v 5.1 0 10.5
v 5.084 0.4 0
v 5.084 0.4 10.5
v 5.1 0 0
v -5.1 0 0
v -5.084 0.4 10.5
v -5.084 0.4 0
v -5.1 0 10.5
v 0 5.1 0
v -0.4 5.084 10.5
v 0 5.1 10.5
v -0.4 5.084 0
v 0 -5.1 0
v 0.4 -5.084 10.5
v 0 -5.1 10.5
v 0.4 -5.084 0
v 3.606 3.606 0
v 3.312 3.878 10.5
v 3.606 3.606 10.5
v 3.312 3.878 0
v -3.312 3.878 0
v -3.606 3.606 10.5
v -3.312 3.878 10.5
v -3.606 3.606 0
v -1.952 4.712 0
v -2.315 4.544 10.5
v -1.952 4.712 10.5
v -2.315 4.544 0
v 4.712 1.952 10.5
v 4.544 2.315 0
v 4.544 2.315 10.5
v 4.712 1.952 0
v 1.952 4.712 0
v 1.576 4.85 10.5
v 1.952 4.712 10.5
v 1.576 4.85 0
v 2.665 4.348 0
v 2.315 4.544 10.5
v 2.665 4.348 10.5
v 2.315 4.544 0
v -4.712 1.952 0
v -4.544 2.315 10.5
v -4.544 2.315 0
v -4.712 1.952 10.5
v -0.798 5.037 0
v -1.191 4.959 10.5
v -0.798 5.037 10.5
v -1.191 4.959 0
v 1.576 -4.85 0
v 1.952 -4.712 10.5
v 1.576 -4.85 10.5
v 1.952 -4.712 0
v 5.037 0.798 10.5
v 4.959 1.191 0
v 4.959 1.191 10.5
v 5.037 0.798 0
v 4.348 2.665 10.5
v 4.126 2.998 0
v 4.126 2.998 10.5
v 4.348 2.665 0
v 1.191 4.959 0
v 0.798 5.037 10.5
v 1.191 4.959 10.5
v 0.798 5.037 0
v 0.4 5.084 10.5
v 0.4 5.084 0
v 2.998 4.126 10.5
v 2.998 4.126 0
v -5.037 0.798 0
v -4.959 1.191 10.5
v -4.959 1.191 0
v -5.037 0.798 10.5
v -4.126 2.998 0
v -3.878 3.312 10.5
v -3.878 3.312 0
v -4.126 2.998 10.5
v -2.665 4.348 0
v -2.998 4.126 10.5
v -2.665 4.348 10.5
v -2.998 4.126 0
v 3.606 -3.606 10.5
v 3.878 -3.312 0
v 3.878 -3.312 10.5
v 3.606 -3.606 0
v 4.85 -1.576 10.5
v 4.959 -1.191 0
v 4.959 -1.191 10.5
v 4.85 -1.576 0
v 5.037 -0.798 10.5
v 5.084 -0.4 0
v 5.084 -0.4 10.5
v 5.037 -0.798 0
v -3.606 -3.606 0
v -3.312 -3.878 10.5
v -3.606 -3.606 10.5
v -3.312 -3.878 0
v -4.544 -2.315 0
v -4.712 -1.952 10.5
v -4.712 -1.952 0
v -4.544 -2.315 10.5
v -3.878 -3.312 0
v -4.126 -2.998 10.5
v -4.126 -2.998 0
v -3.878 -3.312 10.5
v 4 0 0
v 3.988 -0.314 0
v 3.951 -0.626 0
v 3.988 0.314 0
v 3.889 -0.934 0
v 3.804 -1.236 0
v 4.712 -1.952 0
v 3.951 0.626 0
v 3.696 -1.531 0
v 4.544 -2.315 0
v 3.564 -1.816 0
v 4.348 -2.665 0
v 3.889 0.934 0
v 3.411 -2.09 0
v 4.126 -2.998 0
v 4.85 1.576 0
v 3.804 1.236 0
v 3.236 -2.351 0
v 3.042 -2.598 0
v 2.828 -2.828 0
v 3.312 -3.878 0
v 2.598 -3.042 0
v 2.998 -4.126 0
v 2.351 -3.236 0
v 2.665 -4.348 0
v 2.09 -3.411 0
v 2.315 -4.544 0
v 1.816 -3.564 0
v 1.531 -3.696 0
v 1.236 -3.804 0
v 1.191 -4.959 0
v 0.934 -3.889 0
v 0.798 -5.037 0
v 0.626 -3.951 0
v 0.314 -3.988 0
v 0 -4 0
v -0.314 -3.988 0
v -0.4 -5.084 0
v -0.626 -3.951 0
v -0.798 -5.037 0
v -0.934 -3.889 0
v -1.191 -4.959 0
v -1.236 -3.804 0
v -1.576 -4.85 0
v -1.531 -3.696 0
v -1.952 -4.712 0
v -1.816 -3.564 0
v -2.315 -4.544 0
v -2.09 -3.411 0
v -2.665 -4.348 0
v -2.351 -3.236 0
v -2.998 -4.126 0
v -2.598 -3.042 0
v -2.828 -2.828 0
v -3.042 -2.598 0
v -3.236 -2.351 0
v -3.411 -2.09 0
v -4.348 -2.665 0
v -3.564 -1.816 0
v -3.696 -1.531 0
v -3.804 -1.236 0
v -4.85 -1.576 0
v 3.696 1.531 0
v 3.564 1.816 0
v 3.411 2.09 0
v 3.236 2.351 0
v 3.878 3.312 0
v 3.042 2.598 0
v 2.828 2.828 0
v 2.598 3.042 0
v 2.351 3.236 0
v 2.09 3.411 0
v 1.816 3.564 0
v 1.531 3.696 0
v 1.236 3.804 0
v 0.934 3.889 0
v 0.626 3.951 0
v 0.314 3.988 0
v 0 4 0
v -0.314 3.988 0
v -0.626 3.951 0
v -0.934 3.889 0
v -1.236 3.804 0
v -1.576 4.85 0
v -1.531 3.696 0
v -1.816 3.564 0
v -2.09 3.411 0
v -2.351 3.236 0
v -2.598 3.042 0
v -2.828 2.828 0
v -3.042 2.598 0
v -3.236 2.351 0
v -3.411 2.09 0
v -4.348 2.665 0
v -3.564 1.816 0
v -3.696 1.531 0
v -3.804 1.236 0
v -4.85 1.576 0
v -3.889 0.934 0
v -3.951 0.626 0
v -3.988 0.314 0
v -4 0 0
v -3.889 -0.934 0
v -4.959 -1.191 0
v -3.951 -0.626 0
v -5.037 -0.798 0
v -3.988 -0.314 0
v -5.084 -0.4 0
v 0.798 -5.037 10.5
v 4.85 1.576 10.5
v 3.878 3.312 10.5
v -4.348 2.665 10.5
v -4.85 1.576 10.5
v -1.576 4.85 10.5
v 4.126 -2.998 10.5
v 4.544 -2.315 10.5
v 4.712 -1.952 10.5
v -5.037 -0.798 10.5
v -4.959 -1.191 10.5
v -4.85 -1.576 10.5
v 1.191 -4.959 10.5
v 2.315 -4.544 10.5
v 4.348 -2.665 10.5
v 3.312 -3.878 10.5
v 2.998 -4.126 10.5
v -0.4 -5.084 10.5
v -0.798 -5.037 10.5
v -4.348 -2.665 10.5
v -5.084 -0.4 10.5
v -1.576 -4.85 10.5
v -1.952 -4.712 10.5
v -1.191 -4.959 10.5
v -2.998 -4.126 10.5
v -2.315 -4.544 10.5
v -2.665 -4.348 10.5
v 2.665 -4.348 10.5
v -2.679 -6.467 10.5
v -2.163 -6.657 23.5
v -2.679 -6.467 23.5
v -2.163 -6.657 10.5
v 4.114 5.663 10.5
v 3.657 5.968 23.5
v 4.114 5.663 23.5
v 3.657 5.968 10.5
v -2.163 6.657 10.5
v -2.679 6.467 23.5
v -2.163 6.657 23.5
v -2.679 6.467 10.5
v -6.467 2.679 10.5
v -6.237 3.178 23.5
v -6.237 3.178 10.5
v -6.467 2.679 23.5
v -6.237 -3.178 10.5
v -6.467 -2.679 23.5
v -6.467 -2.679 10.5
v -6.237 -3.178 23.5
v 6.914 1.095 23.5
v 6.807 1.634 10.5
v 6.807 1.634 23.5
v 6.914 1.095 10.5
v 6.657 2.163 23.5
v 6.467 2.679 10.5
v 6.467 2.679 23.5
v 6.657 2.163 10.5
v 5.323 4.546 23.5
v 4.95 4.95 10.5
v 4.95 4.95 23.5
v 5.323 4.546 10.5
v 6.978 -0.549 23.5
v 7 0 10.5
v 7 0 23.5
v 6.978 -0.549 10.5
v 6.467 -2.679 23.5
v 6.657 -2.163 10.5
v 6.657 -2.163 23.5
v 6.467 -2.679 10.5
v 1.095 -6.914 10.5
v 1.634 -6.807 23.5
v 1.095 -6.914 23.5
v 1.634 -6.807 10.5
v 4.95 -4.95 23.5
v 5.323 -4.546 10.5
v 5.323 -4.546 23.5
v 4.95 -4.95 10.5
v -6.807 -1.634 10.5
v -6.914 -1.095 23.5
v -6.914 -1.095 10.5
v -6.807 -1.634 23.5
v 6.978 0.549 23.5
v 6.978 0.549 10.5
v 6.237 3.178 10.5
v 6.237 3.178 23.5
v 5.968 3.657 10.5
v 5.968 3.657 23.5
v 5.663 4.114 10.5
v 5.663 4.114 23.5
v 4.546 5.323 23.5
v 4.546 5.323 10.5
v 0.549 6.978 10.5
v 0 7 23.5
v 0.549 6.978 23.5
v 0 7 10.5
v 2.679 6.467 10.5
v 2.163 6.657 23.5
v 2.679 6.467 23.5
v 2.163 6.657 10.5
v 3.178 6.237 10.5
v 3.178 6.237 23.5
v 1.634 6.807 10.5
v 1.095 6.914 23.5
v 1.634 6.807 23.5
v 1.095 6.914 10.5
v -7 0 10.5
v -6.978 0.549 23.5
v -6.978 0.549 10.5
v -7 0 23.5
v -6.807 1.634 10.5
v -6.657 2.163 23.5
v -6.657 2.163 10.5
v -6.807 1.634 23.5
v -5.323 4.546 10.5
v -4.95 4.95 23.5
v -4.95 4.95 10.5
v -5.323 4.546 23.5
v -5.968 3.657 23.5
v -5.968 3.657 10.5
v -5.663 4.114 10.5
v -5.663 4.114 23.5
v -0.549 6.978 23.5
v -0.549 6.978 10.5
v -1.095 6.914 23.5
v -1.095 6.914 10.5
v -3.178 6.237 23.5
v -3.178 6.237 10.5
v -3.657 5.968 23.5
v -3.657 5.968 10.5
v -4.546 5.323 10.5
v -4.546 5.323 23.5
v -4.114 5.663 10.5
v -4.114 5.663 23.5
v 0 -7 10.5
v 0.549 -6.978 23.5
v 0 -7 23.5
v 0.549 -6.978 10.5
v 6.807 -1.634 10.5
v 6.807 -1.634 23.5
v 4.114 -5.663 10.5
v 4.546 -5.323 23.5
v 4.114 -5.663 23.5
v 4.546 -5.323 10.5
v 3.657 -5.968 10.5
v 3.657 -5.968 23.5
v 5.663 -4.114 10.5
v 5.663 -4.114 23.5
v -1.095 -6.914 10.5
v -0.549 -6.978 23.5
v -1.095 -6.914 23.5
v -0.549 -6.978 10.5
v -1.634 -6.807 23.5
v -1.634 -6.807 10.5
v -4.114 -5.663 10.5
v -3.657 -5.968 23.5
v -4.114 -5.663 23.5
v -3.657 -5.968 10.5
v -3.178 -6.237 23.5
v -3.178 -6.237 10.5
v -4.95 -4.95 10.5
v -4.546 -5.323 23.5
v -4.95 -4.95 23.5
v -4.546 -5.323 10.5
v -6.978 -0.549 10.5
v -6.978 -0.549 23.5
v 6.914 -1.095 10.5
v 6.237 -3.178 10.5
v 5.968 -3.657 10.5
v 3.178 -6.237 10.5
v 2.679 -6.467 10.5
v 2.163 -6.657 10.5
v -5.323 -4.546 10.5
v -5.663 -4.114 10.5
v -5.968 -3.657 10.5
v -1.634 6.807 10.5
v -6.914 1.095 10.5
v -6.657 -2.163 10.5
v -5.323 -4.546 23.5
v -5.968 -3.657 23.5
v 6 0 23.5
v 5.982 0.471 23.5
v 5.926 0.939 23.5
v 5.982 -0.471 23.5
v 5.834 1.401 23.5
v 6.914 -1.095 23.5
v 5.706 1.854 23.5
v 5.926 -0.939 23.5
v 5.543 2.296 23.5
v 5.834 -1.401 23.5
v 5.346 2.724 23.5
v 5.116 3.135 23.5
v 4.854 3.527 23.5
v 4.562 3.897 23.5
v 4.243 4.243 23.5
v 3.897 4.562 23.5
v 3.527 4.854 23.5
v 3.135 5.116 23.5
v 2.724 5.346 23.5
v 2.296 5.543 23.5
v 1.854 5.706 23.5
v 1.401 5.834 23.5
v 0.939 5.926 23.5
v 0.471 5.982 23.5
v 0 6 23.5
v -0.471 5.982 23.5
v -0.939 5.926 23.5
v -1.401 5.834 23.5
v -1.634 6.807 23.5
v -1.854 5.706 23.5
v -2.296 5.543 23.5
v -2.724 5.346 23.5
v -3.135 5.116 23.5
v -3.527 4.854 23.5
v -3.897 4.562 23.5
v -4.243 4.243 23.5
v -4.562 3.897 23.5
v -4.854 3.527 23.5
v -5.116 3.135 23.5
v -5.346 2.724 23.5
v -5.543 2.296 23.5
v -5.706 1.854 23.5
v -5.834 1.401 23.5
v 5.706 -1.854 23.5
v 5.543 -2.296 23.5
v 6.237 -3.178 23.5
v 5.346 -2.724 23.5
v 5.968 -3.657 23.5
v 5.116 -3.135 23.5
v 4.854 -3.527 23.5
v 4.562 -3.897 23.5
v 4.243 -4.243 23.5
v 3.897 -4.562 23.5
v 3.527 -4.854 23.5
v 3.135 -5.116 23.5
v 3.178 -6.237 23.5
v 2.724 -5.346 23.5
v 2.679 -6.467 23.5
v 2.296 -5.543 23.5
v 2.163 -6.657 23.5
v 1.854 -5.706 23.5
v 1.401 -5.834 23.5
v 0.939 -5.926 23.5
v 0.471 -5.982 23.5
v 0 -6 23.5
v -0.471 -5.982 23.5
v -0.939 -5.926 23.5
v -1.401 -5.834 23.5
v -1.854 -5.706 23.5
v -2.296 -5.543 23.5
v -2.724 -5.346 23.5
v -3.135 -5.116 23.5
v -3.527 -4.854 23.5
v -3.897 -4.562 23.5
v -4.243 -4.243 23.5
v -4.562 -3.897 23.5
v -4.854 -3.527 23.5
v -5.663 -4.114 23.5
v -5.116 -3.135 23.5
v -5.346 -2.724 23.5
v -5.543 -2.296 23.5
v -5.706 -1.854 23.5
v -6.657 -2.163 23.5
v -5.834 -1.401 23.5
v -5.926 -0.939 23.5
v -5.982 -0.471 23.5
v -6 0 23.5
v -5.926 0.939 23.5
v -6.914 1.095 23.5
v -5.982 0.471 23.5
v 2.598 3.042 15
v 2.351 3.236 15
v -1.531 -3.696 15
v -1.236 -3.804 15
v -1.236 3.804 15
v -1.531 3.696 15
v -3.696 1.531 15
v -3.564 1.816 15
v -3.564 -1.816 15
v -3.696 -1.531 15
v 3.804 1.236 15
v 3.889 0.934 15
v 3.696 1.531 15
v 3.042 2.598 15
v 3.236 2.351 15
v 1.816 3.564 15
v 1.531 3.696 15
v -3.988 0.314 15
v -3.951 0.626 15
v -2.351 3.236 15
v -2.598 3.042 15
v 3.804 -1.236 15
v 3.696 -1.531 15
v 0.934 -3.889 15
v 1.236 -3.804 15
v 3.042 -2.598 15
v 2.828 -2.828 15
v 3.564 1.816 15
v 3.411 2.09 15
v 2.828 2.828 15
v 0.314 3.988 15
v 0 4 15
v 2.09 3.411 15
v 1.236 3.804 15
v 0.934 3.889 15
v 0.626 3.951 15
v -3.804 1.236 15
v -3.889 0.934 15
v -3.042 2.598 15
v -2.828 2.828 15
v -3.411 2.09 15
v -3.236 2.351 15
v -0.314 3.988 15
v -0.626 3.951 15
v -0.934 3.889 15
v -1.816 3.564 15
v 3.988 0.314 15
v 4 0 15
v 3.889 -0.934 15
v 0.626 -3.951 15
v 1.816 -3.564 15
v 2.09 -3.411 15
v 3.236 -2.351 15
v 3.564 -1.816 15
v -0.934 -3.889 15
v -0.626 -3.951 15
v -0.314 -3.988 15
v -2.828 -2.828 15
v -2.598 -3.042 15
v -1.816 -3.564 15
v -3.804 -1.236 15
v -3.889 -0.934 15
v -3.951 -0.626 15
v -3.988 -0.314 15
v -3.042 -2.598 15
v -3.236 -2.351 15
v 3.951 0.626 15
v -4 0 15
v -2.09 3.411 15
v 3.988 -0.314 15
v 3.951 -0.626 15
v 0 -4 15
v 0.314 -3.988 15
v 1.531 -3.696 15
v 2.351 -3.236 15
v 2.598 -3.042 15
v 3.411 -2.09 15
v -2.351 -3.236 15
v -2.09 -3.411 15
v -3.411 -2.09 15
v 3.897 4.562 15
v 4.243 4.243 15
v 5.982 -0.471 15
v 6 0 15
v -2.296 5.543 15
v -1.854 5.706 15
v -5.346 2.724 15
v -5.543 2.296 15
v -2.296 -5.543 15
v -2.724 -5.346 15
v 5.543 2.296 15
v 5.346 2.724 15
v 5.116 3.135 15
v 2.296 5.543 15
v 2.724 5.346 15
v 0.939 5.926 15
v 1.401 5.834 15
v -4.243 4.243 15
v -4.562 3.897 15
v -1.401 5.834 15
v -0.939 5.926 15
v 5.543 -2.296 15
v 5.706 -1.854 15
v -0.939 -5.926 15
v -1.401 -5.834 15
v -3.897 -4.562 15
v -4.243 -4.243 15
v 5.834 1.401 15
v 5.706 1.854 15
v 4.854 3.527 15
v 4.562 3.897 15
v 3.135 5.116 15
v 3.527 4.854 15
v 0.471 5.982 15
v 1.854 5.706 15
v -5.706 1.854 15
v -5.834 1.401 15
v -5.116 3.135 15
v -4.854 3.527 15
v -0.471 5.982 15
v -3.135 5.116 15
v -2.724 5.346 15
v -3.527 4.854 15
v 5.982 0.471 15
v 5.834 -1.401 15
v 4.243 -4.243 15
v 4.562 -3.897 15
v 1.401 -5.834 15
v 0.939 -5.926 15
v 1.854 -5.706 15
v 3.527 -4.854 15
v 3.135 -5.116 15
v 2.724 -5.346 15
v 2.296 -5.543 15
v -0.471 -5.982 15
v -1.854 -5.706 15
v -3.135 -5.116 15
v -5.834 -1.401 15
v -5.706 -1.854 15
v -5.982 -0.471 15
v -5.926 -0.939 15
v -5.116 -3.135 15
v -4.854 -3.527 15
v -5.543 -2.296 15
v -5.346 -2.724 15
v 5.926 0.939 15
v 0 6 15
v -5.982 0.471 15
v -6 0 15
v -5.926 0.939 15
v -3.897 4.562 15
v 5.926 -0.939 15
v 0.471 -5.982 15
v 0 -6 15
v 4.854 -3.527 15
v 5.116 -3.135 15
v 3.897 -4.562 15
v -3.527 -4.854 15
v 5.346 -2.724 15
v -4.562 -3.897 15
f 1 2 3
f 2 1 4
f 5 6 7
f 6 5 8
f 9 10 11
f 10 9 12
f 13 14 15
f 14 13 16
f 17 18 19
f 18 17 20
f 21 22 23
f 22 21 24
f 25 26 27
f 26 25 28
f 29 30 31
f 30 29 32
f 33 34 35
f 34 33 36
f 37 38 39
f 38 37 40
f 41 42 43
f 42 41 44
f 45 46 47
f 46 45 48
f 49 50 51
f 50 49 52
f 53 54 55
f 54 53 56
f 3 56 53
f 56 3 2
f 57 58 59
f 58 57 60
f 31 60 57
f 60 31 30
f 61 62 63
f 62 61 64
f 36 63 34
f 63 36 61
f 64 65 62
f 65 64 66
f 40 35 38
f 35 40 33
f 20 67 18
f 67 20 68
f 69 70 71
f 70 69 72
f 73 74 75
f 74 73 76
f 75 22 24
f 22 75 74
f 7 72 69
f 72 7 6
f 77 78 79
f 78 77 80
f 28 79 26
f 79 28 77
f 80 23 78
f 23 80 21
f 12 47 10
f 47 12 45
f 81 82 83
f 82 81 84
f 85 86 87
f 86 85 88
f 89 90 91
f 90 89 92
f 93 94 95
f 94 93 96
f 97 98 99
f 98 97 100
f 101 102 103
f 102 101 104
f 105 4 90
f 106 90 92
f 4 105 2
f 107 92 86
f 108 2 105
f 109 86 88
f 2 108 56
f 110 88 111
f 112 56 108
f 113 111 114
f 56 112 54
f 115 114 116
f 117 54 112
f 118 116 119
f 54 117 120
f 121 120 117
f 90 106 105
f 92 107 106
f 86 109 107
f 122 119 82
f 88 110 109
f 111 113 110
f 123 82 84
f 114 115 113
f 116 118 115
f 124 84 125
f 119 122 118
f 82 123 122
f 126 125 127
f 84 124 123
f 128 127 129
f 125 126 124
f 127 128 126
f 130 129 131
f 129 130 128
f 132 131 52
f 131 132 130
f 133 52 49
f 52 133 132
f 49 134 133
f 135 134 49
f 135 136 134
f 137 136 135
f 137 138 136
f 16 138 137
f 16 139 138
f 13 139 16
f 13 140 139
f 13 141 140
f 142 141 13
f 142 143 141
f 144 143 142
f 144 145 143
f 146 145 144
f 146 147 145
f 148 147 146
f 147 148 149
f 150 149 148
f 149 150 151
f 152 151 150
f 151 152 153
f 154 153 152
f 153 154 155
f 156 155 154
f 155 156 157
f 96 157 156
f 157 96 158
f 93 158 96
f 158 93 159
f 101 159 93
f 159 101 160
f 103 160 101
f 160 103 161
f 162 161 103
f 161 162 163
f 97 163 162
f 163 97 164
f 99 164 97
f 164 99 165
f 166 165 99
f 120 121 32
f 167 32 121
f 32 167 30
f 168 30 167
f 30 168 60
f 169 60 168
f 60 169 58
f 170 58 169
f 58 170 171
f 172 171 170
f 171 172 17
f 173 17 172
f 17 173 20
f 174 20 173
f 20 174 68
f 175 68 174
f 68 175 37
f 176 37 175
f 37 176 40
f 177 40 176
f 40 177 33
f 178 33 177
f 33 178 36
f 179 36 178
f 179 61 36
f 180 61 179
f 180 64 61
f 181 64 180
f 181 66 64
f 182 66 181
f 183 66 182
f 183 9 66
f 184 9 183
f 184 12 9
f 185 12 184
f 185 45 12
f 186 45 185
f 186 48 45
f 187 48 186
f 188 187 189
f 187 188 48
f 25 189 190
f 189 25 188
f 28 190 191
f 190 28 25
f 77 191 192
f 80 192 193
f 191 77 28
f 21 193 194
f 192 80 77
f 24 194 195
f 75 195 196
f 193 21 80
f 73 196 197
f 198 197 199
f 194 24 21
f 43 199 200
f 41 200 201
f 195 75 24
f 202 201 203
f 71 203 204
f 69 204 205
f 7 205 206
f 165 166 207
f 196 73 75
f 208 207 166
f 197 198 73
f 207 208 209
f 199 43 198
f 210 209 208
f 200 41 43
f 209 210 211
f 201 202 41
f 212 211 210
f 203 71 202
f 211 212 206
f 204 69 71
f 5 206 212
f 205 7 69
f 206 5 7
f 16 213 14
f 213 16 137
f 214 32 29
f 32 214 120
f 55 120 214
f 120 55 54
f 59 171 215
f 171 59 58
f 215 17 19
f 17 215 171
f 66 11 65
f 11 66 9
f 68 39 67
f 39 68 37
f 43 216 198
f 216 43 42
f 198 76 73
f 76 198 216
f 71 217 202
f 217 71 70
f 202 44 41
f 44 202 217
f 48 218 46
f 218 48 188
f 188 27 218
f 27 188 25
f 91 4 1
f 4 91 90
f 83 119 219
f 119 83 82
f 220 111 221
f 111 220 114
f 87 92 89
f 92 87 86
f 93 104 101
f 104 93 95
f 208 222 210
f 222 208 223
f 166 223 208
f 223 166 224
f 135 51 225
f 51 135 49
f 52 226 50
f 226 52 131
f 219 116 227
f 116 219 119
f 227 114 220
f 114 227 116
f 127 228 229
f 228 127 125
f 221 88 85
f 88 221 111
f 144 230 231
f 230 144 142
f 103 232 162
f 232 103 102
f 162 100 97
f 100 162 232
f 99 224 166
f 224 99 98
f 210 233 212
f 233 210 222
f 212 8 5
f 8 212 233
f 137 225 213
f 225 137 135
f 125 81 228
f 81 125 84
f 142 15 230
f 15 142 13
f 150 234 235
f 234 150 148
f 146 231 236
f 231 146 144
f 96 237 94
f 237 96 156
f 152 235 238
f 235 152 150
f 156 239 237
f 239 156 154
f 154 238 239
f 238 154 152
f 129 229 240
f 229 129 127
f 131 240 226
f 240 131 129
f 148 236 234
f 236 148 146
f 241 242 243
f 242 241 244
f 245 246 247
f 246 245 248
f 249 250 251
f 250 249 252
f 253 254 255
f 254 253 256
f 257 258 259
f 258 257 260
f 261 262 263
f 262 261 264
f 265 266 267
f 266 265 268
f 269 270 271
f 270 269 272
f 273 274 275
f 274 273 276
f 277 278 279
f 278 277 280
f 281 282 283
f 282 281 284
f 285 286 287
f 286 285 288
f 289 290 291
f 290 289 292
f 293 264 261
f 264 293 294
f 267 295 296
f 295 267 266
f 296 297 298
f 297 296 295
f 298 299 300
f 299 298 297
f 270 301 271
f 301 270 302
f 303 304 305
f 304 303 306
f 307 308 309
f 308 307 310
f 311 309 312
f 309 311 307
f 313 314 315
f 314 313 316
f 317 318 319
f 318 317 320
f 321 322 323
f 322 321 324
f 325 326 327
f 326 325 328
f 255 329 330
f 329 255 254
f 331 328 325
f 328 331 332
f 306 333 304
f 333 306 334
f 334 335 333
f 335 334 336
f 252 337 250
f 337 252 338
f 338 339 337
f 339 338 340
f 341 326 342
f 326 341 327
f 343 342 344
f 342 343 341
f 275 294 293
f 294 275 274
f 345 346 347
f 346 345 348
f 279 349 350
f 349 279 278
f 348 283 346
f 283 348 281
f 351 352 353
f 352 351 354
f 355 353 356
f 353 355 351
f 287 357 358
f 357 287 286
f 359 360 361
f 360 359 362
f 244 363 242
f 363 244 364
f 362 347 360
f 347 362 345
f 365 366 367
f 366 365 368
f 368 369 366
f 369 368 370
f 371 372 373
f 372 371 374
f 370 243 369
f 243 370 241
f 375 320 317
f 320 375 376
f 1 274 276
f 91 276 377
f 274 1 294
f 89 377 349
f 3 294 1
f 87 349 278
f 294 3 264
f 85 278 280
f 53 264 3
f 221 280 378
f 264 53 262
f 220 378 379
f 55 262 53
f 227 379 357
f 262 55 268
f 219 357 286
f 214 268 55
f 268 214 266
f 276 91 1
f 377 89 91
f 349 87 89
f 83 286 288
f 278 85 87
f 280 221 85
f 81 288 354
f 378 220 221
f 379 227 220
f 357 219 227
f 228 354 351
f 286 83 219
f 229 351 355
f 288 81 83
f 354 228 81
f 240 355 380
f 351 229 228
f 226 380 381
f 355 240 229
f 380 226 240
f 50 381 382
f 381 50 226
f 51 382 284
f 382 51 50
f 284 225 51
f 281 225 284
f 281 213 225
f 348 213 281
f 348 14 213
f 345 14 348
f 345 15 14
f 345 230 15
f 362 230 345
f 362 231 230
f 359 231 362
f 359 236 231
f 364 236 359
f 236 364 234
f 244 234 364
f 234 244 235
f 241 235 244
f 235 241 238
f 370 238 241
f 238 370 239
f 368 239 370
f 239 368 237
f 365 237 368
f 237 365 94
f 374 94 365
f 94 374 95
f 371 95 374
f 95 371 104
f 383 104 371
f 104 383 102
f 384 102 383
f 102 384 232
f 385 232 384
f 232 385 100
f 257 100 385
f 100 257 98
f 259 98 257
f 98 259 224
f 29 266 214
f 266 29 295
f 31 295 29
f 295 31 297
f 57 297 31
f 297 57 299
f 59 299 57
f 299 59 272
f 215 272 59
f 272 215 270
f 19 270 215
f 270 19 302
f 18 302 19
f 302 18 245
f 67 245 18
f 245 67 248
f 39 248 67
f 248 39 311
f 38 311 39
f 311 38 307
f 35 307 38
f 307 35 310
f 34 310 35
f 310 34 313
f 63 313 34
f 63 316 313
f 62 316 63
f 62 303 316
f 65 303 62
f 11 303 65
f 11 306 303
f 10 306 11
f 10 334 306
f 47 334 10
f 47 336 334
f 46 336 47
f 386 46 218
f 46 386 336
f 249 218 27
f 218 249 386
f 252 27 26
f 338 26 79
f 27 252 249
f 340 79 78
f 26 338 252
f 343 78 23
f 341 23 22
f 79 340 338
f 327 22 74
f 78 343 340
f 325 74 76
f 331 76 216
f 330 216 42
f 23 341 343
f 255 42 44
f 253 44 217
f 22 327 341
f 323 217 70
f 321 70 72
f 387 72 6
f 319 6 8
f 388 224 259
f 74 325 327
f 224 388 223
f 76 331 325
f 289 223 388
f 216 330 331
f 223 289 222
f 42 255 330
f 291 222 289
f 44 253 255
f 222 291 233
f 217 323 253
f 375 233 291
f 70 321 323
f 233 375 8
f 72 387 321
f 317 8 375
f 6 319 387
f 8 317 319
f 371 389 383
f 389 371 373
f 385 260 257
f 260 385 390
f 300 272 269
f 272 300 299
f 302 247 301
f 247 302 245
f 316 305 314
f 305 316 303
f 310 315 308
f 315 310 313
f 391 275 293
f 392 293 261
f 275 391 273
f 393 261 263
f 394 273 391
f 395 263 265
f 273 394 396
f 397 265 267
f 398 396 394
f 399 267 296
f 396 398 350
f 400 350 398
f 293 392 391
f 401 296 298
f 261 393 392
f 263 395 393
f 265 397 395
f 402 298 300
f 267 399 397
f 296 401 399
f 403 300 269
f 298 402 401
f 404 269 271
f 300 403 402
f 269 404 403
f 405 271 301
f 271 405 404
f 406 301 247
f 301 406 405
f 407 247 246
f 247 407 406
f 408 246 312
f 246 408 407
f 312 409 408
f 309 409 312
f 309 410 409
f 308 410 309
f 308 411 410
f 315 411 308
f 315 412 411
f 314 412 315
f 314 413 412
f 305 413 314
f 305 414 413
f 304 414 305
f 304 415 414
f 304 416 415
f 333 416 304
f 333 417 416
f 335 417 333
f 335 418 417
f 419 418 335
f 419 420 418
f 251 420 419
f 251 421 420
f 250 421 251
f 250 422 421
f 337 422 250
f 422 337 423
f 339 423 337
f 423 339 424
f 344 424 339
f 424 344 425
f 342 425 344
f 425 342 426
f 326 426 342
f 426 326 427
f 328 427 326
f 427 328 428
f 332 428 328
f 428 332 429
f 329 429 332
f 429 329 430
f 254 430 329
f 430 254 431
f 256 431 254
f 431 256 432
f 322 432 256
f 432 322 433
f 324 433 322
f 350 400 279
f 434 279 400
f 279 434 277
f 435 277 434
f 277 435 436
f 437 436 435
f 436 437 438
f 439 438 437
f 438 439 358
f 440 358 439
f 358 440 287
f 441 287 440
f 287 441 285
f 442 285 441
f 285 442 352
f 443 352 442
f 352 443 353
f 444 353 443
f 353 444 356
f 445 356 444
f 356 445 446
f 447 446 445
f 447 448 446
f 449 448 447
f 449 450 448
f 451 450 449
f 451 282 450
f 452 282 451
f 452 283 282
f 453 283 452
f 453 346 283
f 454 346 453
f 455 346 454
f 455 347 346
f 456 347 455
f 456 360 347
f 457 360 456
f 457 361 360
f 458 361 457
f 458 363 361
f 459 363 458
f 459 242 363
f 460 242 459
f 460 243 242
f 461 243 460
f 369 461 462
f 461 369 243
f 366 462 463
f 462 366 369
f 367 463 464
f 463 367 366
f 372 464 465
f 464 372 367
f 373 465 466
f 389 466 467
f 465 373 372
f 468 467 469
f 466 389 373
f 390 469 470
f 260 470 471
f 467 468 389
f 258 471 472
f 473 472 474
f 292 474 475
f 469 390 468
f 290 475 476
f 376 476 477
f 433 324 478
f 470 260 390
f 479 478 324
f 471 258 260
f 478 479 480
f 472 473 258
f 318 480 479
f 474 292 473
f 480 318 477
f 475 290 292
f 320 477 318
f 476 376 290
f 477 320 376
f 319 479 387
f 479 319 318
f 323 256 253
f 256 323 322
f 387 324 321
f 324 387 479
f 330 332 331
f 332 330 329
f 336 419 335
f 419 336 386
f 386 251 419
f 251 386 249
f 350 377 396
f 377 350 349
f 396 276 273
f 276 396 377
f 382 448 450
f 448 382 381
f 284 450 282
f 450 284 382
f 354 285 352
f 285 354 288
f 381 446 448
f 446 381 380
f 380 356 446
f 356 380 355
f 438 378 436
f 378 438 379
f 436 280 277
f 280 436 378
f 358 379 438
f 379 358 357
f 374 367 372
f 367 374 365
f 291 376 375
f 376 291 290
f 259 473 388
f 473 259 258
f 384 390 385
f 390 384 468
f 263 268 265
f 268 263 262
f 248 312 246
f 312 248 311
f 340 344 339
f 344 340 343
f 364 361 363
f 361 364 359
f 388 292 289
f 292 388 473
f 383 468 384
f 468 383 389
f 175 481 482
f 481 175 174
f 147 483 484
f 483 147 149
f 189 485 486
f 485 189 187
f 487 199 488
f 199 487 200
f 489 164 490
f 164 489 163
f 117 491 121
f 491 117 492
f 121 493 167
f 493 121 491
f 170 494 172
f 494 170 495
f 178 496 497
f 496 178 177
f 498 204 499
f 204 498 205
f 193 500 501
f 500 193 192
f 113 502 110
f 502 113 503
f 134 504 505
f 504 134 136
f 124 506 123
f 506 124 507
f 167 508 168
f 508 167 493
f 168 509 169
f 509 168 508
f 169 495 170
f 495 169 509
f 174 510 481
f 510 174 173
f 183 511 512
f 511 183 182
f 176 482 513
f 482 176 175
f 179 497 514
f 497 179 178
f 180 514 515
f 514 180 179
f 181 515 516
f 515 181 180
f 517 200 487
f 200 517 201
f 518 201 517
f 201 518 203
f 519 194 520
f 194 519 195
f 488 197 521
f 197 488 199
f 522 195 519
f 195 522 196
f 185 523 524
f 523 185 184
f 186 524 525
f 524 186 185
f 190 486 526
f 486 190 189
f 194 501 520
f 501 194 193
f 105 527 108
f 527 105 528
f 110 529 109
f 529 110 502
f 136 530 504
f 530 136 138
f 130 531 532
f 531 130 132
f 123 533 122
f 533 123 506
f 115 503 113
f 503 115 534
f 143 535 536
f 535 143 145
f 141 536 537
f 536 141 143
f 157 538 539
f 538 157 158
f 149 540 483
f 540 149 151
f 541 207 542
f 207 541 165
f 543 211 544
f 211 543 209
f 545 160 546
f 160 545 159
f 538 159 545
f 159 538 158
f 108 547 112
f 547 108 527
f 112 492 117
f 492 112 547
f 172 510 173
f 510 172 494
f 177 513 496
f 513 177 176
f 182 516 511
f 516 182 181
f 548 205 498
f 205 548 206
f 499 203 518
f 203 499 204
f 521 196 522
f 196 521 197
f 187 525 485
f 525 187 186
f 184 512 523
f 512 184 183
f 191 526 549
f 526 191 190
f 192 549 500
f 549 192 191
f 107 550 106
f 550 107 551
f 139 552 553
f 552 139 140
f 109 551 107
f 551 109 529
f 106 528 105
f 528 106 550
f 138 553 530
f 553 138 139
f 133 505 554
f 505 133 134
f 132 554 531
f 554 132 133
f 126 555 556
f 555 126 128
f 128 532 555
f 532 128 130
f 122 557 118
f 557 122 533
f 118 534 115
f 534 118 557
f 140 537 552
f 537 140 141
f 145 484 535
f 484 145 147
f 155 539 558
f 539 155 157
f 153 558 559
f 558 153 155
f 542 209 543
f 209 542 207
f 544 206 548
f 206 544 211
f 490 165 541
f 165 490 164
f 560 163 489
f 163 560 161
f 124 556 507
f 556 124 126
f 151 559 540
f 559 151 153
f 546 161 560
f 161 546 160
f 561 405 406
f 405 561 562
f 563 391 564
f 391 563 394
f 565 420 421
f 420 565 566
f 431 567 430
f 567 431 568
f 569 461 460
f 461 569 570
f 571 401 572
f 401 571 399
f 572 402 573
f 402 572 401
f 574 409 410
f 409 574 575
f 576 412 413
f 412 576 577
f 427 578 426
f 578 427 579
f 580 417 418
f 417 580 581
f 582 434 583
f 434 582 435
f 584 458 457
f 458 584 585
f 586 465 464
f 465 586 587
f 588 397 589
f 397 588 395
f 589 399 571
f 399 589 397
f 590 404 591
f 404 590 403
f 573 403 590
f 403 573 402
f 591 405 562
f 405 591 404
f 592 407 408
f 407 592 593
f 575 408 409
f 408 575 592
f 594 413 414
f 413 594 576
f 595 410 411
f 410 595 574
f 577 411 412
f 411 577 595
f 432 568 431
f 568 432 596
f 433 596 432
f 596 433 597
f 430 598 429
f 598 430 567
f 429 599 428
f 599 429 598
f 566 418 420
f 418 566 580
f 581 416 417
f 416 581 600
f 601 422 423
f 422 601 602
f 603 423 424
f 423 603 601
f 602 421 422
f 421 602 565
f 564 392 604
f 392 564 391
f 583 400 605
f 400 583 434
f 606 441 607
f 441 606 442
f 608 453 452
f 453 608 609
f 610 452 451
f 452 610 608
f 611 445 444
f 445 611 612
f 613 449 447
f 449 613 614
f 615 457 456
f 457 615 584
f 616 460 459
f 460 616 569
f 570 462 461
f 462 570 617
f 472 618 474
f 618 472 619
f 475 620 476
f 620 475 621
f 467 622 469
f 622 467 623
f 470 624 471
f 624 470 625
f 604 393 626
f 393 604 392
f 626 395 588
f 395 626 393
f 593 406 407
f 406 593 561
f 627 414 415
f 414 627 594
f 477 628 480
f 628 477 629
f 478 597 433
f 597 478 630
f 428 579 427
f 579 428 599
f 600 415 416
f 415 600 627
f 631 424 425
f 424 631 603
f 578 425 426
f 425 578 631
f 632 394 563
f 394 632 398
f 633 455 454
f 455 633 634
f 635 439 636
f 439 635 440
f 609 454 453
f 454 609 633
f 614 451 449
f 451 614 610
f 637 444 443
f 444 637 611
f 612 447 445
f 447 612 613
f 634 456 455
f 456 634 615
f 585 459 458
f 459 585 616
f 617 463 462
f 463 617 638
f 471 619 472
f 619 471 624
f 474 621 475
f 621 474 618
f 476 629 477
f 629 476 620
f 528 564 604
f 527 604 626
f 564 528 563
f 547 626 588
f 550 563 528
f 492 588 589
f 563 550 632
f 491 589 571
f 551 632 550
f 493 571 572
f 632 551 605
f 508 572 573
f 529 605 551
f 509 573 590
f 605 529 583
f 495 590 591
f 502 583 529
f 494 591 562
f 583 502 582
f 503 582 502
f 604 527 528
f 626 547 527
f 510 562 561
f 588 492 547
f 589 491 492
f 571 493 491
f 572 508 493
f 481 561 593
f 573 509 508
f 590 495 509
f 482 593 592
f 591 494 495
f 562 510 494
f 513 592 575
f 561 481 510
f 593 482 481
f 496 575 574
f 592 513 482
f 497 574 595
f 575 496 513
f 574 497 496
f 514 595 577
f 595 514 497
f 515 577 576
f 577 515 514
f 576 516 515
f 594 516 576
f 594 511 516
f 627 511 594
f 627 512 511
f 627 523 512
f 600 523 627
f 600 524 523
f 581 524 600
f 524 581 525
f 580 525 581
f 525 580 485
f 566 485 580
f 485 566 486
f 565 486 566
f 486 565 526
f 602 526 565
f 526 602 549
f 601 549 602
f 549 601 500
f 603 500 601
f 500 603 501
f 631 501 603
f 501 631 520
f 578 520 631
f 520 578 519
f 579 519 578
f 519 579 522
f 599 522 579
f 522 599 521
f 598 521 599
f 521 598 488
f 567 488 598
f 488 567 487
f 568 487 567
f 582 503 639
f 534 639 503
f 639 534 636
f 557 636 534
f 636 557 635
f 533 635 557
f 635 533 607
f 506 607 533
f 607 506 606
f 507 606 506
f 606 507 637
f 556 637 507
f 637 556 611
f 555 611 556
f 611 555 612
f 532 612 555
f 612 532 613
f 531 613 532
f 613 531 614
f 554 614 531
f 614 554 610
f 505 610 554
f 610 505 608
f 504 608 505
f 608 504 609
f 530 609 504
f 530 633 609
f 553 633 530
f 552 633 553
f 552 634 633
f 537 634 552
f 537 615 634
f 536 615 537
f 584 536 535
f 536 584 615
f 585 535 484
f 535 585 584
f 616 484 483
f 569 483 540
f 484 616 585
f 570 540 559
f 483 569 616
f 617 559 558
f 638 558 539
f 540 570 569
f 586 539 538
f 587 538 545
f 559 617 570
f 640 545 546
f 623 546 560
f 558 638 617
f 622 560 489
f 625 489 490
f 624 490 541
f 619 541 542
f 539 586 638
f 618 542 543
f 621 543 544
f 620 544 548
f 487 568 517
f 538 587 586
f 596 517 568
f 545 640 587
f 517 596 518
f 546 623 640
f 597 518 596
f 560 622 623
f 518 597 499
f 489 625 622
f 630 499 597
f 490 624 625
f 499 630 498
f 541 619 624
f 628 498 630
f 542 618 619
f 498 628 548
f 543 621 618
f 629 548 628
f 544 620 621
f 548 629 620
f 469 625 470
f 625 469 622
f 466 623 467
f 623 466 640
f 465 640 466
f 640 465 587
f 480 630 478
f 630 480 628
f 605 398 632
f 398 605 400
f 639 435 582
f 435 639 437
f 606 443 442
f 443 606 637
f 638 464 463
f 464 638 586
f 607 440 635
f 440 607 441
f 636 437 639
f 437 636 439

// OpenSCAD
difference() {
union() {
    
translate([0,0,6]) cylinder(r=5.1, h= 12, center=true, $fn=80);
    translate([0,0,17]) cylinder(r=7, h= 13, center=true, $fn=80);
    }
  cylinder(r=4, h=80, center=true, $fn=80);
    translate([0,0,20])cylinder(r=6, h=10, center=true, $fn=80);
   
} 
    
    
